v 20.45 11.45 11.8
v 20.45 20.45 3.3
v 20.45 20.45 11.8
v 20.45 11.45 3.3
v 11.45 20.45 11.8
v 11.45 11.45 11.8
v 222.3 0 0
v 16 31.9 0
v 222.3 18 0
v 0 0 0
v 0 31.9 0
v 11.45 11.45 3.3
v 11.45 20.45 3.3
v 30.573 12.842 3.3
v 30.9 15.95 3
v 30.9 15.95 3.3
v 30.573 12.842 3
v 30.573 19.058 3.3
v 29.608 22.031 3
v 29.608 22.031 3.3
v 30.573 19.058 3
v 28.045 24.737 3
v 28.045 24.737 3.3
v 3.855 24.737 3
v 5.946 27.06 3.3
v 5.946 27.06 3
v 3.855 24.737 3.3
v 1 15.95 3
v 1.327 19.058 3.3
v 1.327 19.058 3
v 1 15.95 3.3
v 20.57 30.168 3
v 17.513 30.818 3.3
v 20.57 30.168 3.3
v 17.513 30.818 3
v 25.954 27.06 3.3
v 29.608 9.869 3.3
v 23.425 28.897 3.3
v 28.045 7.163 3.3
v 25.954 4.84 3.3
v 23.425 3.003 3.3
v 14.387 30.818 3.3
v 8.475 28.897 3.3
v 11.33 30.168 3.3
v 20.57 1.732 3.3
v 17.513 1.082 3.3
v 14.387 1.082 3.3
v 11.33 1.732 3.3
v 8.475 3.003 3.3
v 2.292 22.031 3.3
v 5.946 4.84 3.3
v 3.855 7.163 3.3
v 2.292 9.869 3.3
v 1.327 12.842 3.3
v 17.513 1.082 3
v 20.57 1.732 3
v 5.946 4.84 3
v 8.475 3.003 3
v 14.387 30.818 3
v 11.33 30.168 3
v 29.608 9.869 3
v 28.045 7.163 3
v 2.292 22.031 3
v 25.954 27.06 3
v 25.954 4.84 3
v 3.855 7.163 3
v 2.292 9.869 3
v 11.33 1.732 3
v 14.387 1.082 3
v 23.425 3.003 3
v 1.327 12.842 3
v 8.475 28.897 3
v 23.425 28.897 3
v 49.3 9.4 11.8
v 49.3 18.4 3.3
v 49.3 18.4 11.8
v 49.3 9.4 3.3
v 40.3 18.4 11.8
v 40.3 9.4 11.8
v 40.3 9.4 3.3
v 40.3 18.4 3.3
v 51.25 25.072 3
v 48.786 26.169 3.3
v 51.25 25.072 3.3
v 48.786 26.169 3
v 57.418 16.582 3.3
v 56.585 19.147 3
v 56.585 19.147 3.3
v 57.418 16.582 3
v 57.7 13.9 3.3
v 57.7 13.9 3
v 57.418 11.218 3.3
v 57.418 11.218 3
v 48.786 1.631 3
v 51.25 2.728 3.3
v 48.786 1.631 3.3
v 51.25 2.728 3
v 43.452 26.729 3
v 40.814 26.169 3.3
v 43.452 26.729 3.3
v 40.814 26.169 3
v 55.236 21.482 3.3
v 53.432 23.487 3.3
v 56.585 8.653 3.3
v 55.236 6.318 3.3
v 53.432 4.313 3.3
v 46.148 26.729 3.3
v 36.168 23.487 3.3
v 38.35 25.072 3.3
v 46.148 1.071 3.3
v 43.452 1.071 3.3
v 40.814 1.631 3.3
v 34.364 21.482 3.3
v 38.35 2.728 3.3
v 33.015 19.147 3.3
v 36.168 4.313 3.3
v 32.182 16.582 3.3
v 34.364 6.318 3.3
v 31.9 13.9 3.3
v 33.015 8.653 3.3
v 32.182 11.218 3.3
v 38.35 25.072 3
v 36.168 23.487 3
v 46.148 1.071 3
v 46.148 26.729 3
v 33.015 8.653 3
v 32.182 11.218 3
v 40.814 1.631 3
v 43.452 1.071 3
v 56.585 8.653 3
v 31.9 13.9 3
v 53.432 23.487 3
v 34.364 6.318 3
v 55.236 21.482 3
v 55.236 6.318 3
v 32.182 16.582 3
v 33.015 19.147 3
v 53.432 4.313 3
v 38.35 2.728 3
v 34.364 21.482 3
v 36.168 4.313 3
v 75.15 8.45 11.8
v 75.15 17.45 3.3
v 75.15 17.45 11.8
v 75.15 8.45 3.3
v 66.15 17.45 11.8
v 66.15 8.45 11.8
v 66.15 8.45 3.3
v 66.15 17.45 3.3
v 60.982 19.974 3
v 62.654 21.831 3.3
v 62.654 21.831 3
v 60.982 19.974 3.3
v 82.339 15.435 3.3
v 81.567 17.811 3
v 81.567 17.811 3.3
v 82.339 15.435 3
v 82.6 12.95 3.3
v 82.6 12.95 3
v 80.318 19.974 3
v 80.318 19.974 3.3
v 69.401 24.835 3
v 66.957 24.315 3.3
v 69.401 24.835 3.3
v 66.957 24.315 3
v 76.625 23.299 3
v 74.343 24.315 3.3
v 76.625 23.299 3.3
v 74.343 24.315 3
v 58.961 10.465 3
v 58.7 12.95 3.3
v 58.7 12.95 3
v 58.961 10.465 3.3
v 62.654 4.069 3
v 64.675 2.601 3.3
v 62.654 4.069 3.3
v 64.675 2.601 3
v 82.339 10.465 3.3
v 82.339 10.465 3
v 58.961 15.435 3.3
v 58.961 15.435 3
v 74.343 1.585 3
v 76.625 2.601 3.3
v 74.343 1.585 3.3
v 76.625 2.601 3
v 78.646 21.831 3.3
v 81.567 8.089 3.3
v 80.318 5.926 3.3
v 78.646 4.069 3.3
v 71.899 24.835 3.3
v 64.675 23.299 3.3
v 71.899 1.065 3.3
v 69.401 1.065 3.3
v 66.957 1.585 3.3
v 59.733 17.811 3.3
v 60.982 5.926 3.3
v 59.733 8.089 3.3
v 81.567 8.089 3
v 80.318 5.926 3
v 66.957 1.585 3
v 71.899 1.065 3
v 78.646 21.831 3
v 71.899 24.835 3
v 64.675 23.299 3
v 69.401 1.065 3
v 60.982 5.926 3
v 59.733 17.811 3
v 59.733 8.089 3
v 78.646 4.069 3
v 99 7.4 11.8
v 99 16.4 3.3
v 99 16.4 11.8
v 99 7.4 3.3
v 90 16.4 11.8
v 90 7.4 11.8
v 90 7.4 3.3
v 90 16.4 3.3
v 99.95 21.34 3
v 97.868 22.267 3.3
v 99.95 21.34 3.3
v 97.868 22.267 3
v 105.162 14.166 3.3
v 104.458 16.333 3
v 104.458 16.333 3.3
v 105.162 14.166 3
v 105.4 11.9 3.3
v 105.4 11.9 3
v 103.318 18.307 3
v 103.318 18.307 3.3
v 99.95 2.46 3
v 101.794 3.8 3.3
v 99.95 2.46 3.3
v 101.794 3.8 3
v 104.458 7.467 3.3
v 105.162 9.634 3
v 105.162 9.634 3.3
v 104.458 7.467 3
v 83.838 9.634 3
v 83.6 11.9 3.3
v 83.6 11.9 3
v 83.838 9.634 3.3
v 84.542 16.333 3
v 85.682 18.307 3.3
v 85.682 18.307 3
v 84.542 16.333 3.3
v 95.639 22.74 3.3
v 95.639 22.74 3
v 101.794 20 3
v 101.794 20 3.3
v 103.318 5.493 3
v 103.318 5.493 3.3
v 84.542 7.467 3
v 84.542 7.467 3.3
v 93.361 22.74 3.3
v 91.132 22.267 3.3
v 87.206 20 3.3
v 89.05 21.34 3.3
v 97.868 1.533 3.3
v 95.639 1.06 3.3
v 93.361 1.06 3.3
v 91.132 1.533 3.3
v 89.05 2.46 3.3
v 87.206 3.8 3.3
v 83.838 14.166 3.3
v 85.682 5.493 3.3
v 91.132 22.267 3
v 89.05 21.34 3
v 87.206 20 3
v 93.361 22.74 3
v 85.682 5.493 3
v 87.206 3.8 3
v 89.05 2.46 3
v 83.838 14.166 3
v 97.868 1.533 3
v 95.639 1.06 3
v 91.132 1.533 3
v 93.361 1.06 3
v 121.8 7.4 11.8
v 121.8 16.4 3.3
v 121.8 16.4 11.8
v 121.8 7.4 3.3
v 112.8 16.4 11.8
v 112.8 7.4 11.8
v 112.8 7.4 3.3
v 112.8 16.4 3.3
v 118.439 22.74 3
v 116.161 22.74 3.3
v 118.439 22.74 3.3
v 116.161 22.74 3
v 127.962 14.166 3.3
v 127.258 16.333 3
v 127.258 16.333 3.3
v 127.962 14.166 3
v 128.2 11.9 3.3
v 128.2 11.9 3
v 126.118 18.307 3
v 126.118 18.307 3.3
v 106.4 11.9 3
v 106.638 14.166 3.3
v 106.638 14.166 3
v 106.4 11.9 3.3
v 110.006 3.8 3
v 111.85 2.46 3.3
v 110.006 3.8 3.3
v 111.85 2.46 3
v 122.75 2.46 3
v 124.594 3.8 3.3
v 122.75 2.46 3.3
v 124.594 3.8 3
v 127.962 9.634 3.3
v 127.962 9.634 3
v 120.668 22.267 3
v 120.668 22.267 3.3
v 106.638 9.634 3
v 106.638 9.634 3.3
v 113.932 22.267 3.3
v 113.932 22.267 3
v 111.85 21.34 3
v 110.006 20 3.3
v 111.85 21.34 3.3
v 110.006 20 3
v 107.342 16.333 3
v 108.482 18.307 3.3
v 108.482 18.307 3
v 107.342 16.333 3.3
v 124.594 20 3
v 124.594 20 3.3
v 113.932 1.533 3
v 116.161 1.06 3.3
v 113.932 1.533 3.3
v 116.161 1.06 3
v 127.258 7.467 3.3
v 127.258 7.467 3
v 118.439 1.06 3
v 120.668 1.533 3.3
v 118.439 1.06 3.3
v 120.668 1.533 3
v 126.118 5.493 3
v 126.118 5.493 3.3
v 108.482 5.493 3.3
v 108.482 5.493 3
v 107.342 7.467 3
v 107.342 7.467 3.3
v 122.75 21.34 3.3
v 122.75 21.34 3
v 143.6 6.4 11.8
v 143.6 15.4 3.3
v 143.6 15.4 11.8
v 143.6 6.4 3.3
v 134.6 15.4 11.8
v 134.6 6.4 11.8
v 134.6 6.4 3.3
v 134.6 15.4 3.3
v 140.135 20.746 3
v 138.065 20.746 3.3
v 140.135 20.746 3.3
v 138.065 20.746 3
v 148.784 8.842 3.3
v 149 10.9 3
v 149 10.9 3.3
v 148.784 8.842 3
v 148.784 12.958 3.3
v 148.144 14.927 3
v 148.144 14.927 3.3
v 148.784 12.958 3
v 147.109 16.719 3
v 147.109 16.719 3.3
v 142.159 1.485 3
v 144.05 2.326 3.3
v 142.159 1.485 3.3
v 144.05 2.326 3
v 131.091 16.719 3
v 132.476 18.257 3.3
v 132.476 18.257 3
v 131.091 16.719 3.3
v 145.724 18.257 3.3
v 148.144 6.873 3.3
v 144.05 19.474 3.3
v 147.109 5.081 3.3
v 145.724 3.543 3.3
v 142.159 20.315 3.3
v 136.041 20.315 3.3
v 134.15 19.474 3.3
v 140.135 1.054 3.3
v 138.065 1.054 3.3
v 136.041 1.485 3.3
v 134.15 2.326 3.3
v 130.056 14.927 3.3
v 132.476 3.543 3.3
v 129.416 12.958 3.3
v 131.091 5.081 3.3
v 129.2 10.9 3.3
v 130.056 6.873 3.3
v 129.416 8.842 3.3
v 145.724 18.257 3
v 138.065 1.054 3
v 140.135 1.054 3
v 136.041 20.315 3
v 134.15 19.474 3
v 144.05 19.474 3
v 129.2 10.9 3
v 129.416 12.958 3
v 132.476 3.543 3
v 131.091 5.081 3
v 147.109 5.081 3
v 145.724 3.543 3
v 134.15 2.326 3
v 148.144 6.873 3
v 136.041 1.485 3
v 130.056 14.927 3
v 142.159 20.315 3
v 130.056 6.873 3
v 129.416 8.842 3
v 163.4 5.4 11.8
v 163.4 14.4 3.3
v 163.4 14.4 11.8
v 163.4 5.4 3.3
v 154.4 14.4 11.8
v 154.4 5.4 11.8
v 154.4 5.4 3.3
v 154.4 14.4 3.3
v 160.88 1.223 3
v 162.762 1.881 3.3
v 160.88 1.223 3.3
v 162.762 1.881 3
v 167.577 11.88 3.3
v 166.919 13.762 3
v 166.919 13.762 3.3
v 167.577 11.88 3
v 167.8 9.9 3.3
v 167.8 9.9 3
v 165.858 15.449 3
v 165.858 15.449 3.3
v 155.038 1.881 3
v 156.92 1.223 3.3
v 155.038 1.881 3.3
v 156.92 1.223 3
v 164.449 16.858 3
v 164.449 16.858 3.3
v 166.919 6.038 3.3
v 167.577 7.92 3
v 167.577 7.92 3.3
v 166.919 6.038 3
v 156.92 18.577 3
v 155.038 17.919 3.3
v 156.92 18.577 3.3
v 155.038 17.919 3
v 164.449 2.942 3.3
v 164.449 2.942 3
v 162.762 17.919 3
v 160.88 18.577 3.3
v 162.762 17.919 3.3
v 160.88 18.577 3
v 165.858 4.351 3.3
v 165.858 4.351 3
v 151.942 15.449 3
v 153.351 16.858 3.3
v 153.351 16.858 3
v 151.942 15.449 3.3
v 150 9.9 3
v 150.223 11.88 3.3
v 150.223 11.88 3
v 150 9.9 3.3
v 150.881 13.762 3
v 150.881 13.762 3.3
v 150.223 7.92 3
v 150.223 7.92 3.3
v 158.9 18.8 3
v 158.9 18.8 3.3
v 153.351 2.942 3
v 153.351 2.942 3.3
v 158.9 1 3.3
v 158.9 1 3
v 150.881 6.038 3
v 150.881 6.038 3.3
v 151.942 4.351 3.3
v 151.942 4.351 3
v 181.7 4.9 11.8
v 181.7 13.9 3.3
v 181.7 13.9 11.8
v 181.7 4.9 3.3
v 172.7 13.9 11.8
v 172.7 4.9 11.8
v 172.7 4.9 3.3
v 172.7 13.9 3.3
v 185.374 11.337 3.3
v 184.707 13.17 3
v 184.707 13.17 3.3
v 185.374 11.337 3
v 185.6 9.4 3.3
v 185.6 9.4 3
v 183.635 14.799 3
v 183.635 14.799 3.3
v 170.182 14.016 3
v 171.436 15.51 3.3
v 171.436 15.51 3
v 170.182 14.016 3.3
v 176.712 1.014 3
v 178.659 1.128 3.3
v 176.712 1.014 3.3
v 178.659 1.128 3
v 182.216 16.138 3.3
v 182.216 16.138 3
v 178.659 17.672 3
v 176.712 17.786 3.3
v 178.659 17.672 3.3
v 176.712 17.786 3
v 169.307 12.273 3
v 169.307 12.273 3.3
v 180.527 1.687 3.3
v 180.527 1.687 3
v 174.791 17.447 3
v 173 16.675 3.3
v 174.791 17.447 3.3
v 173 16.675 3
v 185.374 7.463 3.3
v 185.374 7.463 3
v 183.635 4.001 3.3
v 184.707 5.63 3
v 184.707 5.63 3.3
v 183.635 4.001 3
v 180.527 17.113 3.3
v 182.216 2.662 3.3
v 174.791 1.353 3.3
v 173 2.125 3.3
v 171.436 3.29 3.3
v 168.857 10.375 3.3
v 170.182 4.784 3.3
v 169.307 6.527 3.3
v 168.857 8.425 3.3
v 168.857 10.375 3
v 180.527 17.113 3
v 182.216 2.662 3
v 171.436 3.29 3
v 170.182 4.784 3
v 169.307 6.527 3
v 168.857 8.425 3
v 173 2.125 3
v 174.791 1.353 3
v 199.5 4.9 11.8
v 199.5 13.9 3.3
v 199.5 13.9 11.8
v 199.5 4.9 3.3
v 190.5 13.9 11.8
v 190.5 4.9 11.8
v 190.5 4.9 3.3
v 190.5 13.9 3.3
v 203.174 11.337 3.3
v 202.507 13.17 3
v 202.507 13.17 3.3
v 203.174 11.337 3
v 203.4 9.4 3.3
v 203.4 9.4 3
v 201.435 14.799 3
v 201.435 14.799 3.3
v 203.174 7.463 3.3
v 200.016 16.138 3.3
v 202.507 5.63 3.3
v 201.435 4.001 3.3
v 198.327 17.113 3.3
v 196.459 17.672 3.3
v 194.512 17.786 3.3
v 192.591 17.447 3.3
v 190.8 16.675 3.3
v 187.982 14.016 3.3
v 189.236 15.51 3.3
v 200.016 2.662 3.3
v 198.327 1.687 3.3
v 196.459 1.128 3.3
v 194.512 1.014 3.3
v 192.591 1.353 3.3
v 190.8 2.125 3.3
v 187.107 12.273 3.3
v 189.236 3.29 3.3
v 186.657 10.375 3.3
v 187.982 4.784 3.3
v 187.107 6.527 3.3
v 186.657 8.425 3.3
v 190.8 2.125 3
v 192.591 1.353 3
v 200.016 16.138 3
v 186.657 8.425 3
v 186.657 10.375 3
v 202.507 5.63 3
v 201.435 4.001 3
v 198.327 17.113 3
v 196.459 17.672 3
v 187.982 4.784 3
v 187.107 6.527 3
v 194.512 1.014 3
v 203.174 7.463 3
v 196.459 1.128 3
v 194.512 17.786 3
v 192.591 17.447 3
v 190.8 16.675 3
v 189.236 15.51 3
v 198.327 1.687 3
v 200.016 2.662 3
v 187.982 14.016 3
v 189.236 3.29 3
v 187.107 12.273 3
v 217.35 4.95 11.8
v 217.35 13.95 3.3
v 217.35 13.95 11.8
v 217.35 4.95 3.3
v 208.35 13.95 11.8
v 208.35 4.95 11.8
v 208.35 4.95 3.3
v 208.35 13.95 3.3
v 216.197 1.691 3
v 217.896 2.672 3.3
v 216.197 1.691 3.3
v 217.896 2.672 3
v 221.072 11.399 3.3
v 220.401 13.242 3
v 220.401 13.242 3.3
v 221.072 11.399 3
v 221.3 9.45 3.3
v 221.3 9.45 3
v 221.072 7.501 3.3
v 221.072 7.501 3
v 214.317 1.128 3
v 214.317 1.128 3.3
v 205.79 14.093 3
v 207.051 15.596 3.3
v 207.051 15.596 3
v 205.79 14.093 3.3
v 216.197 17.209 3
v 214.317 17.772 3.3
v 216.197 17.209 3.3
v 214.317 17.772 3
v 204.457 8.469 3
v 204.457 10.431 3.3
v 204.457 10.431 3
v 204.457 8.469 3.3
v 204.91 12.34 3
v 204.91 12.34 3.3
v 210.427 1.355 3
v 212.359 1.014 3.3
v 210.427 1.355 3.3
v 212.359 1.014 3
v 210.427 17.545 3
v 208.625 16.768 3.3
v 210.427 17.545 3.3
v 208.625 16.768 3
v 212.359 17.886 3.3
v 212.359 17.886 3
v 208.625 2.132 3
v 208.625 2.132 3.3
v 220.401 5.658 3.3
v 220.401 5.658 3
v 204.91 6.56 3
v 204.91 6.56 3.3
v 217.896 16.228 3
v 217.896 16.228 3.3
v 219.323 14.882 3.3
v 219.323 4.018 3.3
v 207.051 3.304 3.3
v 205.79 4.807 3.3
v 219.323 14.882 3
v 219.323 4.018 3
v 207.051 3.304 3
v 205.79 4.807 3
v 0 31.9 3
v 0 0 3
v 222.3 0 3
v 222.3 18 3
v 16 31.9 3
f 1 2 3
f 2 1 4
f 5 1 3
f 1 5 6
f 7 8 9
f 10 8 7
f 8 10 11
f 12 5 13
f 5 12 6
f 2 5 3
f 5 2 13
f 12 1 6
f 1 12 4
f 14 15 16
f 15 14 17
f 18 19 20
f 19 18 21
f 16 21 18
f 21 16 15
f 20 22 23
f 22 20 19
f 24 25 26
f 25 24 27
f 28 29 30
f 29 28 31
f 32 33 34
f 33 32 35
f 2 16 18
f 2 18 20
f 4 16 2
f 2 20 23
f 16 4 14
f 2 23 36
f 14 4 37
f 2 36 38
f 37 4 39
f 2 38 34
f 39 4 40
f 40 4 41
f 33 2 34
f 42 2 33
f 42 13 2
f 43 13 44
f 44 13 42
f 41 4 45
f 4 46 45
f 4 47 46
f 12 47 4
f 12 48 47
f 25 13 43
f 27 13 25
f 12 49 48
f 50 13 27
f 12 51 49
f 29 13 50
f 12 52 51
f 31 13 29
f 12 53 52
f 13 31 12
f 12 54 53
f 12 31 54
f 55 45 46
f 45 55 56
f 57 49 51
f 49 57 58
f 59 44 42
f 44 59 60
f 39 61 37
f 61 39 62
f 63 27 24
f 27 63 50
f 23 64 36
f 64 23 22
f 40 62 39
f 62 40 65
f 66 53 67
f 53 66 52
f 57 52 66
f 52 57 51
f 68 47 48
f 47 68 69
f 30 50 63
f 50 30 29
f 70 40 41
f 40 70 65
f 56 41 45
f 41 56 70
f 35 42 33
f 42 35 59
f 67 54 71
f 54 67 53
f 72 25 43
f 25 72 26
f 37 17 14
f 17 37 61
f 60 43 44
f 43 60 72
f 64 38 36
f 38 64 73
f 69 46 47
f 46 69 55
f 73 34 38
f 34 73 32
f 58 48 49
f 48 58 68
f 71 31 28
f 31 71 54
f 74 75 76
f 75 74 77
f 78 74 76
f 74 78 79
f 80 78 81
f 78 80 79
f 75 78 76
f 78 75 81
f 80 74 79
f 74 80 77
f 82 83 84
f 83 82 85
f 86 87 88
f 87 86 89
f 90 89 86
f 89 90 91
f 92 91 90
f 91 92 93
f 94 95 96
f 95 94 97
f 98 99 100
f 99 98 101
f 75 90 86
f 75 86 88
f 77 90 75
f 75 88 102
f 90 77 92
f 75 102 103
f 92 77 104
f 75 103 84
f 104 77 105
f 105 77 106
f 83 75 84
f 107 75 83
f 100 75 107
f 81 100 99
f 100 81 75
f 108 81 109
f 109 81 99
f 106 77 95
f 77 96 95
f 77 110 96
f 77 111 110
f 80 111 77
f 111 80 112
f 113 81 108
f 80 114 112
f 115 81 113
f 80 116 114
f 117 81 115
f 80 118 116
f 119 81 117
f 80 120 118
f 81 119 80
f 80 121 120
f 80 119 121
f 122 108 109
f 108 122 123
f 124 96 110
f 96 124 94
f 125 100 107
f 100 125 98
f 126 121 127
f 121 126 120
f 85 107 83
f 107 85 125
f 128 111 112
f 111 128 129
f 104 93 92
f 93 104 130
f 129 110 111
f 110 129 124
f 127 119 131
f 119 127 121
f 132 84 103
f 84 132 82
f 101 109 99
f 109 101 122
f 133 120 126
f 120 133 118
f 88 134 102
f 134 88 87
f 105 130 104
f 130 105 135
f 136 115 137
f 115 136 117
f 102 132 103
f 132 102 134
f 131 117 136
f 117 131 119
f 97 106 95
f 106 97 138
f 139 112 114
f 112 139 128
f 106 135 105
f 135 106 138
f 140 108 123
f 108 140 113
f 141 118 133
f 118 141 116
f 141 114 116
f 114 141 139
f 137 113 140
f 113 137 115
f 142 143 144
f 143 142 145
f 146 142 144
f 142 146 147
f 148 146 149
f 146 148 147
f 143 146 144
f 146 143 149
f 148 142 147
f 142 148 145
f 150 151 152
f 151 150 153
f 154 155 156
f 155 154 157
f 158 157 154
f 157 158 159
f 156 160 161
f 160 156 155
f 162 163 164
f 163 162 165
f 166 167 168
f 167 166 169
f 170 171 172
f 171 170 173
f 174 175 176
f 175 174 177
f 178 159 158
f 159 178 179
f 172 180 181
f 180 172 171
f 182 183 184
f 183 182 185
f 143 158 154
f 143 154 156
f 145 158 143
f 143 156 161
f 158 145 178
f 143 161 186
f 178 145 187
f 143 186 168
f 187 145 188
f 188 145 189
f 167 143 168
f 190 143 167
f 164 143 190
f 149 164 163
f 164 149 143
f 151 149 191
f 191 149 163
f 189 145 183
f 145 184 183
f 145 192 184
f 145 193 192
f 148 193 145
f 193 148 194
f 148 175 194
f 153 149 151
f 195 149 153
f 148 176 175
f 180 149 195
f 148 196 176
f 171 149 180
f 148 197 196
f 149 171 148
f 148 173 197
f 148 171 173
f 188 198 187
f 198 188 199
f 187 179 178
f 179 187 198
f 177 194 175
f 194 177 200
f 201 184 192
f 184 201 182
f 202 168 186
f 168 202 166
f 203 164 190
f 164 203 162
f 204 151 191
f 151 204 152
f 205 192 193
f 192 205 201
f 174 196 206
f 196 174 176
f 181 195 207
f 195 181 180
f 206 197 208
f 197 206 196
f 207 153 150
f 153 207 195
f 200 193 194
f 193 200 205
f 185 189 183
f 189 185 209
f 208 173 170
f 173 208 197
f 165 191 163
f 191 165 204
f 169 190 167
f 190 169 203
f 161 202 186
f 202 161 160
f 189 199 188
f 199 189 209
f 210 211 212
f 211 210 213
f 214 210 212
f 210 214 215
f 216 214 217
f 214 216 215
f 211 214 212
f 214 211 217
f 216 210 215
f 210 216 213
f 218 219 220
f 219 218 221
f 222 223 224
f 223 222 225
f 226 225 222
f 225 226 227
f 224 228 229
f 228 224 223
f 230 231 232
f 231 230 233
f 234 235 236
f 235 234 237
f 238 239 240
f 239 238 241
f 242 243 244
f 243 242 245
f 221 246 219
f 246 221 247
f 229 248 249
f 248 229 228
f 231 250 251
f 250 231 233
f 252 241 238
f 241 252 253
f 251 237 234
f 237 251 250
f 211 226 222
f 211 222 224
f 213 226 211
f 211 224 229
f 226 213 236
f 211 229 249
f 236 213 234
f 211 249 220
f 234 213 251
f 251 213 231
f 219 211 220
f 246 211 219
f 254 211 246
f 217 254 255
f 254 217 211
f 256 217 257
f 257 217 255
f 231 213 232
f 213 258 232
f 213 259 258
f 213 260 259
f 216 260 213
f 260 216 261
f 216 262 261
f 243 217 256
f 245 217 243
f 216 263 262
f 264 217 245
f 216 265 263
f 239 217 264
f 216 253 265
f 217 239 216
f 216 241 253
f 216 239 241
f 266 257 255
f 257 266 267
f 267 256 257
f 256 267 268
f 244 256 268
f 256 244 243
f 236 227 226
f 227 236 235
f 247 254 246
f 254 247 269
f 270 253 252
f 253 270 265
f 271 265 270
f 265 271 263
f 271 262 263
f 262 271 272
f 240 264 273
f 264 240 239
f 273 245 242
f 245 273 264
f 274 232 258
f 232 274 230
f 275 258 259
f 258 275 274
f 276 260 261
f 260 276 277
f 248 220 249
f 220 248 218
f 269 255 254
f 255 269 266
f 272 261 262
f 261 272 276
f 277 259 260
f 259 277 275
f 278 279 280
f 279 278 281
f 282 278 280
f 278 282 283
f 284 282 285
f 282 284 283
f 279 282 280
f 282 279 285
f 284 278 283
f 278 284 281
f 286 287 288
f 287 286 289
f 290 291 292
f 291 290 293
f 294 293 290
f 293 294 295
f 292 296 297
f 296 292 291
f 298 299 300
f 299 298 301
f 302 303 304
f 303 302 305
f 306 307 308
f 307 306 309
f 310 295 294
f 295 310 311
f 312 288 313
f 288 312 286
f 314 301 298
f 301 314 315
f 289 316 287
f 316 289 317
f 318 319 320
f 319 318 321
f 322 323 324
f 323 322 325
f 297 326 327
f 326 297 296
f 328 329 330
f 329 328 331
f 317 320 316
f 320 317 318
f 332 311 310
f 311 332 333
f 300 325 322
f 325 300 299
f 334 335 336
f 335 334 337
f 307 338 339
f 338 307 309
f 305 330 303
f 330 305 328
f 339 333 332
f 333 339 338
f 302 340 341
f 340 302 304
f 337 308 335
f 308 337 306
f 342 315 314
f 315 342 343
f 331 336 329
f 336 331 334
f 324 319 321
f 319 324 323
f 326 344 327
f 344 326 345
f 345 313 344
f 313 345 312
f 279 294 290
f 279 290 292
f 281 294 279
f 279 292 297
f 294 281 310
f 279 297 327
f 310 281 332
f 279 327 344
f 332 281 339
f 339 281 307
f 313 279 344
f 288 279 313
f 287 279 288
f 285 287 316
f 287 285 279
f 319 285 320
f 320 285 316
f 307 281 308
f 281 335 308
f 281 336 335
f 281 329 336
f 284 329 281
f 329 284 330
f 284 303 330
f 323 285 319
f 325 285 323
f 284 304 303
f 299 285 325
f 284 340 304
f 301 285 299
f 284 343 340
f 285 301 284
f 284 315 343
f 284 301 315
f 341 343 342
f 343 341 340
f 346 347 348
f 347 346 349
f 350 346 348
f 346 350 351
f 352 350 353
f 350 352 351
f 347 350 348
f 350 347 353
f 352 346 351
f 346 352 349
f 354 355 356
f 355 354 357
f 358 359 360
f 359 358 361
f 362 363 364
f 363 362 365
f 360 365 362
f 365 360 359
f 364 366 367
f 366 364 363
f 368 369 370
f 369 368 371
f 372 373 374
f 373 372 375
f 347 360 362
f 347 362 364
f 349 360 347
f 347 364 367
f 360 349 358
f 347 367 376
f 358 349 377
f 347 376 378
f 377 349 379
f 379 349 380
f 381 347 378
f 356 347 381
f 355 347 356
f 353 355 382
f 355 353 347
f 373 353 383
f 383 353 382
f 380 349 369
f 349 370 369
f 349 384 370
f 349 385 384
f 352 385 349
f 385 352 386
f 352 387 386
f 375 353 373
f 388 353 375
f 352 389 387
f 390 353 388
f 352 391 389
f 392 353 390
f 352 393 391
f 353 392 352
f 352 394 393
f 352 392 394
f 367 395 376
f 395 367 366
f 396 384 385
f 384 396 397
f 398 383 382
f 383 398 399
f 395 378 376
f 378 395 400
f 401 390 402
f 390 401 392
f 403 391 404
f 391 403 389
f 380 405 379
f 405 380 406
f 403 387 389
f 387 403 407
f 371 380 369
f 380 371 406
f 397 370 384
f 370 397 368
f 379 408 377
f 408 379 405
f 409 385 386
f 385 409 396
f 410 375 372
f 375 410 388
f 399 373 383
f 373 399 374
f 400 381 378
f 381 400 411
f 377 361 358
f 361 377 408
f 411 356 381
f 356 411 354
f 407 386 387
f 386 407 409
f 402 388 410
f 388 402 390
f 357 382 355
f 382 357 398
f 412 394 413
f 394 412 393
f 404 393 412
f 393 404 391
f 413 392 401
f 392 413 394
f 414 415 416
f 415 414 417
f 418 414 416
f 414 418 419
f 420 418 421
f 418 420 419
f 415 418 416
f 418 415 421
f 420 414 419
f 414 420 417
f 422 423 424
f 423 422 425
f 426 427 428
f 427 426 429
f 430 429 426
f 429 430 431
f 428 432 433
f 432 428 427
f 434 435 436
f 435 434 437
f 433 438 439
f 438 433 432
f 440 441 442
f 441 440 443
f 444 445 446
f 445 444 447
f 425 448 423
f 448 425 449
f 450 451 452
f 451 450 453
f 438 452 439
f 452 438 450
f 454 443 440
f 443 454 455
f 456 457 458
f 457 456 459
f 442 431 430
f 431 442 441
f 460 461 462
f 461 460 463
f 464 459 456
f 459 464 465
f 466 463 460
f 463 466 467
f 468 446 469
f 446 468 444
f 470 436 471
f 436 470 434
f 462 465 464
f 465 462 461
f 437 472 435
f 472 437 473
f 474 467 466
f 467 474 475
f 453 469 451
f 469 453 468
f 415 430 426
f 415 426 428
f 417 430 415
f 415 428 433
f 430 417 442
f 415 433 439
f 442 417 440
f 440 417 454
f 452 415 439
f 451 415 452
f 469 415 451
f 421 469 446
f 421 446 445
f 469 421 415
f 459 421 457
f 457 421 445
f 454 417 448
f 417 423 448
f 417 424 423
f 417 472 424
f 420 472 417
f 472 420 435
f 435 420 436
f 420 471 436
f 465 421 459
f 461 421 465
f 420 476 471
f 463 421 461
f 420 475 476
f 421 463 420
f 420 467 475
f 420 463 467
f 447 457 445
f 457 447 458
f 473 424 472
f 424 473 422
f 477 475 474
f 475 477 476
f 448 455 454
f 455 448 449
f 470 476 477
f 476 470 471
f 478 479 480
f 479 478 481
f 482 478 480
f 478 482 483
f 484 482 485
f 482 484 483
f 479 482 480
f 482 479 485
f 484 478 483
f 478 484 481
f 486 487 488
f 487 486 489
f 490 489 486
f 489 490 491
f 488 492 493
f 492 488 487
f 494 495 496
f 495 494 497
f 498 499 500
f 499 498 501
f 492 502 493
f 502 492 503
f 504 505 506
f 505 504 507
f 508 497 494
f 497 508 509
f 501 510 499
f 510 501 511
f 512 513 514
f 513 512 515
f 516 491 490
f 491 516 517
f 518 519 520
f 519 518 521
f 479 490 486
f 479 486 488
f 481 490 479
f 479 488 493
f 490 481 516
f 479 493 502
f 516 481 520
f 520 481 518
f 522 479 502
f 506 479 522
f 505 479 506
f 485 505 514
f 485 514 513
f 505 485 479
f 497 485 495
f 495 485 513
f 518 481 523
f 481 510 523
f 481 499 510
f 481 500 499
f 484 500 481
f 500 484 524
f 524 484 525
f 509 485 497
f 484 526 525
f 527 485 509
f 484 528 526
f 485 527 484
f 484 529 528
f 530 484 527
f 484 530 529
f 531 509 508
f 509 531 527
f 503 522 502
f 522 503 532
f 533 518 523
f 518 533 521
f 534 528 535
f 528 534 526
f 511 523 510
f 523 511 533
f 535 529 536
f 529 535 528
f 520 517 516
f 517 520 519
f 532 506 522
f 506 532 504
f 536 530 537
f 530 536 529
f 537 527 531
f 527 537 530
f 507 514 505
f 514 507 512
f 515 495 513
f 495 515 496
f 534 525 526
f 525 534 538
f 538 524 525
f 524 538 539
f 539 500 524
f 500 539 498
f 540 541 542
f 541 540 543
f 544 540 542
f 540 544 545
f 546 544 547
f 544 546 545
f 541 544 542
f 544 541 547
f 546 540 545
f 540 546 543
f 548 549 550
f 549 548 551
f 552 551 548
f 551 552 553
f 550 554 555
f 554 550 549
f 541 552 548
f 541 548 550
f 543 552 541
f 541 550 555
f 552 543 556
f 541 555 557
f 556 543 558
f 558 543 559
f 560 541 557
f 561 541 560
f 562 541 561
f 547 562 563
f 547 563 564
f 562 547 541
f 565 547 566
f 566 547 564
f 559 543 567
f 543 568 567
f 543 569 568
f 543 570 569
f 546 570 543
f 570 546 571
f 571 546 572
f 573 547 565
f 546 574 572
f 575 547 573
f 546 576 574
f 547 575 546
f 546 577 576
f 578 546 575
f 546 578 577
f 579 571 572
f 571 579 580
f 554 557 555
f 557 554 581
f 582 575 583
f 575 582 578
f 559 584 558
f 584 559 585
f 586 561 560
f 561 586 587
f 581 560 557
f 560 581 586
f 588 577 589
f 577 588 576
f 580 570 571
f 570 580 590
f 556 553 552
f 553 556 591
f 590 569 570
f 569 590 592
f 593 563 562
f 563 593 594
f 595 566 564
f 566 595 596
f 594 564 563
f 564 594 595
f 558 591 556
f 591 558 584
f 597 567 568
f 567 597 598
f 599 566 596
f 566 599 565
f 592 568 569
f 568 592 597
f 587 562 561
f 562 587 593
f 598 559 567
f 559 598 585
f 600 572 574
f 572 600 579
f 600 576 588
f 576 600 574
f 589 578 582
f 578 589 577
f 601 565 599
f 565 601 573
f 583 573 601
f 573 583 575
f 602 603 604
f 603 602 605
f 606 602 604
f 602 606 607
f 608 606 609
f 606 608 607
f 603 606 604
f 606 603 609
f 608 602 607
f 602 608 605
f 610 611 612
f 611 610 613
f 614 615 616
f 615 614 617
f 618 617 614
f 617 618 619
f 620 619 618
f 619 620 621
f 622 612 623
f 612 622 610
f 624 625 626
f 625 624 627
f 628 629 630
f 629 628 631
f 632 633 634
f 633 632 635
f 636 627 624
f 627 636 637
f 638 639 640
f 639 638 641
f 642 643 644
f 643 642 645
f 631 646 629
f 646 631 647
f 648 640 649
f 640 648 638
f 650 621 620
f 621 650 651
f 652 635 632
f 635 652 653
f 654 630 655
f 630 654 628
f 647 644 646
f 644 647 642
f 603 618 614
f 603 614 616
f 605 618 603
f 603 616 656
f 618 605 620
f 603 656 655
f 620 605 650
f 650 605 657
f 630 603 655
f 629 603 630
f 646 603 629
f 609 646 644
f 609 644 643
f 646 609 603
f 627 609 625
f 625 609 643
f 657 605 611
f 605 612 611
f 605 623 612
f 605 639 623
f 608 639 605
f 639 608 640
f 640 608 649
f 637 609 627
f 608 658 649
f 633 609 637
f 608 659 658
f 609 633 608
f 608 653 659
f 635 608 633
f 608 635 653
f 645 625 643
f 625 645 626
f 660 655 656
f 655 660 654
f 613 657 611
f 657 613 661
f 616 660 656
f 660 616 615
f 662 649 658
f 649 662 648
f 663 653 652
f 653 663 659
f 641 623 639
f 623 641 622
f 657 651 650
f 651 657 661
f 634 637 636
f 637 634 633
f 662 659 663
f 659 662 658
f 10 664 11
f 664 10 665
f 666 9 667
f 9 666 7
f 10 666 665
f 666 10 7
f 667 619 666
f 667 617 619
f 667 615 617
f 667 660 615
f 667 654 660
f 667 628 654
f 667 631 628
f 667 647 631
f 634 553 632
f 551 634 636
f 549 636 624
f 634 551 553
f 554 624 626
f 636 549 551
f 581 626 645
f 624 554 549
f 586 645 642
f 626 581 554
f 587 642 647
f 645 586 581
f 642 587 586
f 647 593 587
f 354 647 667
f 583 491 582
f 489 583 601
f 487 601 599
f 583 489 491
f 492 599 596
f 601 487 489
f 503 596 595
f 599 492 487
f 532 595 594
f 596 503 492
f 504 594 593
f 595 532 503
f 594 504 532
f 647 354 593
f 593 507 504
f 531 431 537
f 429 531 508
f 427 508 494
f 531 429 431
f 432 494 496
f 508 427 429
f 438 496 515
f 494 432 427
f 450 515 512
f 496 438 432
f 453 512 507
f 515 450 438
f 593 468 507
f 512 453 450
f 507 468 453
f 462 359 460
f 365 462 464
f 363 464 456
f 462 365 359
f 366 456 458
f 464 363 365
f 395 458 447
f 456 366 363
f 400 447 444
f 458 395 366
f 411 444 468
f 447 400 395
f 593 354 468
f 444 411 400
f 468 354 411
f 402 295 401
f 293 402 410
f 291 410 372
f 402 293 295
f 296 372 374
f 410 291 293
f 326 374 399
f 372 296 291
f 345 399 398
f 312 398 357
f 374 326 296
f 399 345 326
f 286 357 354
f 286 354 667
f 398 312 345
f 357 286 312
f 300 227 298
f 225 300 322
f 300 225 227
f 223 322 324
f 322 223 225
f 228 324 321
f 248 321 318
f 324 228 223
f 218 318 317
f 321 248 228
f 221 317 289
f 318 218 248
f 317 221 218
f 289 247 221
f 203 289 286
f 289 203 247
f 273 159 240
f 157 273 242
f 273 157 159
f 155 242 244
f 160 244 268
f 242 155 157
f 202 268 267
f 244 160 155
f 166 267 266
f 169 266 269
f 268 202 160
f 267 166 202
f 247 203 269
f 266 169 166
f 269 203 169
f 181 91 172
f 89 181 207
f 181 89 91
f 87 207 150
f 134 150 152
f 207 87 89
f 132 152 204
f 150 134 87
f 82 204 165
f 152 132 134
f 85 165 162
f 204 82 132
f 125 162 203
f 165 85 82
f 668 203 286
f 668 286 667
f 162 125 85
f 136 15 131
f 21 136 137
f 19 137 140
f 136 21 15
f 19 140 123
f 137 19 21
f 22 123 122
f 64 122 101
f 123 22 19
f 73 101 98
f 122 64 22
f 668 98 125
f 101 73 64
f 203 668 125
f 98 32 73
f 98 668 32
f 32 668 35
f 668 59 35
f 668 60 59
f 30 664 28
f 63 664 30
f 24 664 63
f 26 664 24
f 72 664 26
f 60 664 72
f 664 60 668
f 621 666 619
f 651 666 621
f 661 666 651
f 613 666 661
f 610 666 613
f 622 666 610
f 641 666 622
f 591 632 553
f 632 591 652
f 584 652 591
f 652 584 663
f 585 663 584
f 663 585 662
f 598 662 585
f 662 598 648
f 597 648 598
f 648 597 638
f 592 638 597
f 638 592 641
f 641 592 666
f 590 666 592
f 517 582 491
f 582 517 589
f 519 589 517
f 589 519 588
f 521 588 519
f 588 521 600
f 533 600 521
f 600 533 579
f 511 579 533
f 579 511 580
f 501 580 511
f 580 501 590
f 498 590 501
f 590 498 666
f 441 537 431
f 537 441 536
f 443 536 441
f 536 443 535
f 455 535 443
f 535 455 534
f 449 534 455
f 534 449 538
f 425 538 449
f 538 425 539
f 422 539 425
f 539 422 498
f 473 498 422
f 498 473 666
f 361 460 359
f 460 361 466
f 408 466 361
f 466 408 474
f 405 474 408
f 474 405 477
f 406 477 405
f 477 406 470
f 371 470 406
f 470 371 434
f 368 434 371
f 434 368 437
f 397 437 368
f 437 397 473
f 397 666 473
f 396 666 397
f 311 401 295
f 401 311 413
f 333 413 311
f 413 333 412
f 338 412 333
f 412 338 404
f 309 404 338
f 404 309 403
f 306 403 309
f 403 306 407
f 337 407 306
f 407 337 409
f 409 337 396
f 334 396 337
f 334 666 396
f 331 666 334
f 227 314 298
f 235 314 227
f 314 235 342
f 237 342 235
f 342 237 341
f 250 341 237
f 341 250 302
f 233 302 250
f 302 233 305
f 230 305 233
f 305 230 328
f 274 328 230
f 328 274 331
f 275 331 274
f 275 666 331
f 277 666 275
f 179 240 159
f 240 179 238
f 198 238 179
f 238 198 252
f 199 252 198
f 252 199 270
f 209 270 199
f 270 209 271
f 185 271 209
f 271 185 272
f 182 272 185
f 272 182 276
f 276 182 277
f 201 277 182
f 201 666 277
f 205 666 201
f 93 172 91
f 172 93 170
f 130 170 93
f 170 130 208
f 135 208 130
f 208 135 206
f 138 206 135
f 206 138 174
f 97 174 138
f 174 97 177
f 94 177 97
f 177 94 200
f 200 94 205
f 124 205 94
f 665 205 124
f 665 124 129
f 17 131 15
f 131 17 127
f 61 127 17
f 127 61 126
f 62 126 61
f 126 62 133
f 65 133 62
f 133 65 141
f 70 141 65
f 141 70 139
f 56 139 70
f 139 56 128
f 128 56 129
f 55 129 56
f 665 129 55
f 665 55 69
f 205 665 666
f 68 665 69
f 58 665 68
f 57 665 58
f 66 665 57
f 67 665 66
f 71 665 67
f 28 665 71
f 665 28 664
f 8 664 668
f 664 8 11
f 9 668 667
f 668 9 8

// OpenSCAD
pad_w = 222.3;
pad_d = 29.9+2;
pad_h = 3;
//cube([pad_w, pad_d, pad_h]);
linear_extrude(height=pad_h)
polygon(points=[
    [0,0],
    [0, pad_d],
    [16, pad_d],
    [pad_w, 18],
    [pad_w, 0]]);

module peg(x, y, d)
{
    w = 9;
    h = 11.8;
    translate([x - w/2, y - w/2, 0])
    {
        cube([w, w, h]);
    }
    translate([x, y, 0])
    cylinder(3.3, d/2, d/2);//just for checking
}
d22 = 29.9;
d19 = 25.8;
d17 = 23.9;
d16 = 21.8;
d15 = 21.8;
d14 = 19.8;
d13 = 17.8;
d12 = 16.8;
d11 = 16.8;
d10 = 16.9;

row1 = [d22, d19, d17, d16, d15, d14, d13, d12, d11, d10];
interspace = 1.0;
x_vals = [
    for (
        i = 0, accum = 0.0;
        i < len(row1);
        accum = accum + row1[i] + interspace, i = i + 1
    )
    accum
];

for ( i = [ 0 : len(row1) - 1] )
{
    d = row1[i];
    x = interspace + x_vals[i] + d / 2;
    y = d/2 + interspace;
    //y = pad_d / 2;
    peg(x, y, d);
    echo(x + d / 2 + interspace);
}
